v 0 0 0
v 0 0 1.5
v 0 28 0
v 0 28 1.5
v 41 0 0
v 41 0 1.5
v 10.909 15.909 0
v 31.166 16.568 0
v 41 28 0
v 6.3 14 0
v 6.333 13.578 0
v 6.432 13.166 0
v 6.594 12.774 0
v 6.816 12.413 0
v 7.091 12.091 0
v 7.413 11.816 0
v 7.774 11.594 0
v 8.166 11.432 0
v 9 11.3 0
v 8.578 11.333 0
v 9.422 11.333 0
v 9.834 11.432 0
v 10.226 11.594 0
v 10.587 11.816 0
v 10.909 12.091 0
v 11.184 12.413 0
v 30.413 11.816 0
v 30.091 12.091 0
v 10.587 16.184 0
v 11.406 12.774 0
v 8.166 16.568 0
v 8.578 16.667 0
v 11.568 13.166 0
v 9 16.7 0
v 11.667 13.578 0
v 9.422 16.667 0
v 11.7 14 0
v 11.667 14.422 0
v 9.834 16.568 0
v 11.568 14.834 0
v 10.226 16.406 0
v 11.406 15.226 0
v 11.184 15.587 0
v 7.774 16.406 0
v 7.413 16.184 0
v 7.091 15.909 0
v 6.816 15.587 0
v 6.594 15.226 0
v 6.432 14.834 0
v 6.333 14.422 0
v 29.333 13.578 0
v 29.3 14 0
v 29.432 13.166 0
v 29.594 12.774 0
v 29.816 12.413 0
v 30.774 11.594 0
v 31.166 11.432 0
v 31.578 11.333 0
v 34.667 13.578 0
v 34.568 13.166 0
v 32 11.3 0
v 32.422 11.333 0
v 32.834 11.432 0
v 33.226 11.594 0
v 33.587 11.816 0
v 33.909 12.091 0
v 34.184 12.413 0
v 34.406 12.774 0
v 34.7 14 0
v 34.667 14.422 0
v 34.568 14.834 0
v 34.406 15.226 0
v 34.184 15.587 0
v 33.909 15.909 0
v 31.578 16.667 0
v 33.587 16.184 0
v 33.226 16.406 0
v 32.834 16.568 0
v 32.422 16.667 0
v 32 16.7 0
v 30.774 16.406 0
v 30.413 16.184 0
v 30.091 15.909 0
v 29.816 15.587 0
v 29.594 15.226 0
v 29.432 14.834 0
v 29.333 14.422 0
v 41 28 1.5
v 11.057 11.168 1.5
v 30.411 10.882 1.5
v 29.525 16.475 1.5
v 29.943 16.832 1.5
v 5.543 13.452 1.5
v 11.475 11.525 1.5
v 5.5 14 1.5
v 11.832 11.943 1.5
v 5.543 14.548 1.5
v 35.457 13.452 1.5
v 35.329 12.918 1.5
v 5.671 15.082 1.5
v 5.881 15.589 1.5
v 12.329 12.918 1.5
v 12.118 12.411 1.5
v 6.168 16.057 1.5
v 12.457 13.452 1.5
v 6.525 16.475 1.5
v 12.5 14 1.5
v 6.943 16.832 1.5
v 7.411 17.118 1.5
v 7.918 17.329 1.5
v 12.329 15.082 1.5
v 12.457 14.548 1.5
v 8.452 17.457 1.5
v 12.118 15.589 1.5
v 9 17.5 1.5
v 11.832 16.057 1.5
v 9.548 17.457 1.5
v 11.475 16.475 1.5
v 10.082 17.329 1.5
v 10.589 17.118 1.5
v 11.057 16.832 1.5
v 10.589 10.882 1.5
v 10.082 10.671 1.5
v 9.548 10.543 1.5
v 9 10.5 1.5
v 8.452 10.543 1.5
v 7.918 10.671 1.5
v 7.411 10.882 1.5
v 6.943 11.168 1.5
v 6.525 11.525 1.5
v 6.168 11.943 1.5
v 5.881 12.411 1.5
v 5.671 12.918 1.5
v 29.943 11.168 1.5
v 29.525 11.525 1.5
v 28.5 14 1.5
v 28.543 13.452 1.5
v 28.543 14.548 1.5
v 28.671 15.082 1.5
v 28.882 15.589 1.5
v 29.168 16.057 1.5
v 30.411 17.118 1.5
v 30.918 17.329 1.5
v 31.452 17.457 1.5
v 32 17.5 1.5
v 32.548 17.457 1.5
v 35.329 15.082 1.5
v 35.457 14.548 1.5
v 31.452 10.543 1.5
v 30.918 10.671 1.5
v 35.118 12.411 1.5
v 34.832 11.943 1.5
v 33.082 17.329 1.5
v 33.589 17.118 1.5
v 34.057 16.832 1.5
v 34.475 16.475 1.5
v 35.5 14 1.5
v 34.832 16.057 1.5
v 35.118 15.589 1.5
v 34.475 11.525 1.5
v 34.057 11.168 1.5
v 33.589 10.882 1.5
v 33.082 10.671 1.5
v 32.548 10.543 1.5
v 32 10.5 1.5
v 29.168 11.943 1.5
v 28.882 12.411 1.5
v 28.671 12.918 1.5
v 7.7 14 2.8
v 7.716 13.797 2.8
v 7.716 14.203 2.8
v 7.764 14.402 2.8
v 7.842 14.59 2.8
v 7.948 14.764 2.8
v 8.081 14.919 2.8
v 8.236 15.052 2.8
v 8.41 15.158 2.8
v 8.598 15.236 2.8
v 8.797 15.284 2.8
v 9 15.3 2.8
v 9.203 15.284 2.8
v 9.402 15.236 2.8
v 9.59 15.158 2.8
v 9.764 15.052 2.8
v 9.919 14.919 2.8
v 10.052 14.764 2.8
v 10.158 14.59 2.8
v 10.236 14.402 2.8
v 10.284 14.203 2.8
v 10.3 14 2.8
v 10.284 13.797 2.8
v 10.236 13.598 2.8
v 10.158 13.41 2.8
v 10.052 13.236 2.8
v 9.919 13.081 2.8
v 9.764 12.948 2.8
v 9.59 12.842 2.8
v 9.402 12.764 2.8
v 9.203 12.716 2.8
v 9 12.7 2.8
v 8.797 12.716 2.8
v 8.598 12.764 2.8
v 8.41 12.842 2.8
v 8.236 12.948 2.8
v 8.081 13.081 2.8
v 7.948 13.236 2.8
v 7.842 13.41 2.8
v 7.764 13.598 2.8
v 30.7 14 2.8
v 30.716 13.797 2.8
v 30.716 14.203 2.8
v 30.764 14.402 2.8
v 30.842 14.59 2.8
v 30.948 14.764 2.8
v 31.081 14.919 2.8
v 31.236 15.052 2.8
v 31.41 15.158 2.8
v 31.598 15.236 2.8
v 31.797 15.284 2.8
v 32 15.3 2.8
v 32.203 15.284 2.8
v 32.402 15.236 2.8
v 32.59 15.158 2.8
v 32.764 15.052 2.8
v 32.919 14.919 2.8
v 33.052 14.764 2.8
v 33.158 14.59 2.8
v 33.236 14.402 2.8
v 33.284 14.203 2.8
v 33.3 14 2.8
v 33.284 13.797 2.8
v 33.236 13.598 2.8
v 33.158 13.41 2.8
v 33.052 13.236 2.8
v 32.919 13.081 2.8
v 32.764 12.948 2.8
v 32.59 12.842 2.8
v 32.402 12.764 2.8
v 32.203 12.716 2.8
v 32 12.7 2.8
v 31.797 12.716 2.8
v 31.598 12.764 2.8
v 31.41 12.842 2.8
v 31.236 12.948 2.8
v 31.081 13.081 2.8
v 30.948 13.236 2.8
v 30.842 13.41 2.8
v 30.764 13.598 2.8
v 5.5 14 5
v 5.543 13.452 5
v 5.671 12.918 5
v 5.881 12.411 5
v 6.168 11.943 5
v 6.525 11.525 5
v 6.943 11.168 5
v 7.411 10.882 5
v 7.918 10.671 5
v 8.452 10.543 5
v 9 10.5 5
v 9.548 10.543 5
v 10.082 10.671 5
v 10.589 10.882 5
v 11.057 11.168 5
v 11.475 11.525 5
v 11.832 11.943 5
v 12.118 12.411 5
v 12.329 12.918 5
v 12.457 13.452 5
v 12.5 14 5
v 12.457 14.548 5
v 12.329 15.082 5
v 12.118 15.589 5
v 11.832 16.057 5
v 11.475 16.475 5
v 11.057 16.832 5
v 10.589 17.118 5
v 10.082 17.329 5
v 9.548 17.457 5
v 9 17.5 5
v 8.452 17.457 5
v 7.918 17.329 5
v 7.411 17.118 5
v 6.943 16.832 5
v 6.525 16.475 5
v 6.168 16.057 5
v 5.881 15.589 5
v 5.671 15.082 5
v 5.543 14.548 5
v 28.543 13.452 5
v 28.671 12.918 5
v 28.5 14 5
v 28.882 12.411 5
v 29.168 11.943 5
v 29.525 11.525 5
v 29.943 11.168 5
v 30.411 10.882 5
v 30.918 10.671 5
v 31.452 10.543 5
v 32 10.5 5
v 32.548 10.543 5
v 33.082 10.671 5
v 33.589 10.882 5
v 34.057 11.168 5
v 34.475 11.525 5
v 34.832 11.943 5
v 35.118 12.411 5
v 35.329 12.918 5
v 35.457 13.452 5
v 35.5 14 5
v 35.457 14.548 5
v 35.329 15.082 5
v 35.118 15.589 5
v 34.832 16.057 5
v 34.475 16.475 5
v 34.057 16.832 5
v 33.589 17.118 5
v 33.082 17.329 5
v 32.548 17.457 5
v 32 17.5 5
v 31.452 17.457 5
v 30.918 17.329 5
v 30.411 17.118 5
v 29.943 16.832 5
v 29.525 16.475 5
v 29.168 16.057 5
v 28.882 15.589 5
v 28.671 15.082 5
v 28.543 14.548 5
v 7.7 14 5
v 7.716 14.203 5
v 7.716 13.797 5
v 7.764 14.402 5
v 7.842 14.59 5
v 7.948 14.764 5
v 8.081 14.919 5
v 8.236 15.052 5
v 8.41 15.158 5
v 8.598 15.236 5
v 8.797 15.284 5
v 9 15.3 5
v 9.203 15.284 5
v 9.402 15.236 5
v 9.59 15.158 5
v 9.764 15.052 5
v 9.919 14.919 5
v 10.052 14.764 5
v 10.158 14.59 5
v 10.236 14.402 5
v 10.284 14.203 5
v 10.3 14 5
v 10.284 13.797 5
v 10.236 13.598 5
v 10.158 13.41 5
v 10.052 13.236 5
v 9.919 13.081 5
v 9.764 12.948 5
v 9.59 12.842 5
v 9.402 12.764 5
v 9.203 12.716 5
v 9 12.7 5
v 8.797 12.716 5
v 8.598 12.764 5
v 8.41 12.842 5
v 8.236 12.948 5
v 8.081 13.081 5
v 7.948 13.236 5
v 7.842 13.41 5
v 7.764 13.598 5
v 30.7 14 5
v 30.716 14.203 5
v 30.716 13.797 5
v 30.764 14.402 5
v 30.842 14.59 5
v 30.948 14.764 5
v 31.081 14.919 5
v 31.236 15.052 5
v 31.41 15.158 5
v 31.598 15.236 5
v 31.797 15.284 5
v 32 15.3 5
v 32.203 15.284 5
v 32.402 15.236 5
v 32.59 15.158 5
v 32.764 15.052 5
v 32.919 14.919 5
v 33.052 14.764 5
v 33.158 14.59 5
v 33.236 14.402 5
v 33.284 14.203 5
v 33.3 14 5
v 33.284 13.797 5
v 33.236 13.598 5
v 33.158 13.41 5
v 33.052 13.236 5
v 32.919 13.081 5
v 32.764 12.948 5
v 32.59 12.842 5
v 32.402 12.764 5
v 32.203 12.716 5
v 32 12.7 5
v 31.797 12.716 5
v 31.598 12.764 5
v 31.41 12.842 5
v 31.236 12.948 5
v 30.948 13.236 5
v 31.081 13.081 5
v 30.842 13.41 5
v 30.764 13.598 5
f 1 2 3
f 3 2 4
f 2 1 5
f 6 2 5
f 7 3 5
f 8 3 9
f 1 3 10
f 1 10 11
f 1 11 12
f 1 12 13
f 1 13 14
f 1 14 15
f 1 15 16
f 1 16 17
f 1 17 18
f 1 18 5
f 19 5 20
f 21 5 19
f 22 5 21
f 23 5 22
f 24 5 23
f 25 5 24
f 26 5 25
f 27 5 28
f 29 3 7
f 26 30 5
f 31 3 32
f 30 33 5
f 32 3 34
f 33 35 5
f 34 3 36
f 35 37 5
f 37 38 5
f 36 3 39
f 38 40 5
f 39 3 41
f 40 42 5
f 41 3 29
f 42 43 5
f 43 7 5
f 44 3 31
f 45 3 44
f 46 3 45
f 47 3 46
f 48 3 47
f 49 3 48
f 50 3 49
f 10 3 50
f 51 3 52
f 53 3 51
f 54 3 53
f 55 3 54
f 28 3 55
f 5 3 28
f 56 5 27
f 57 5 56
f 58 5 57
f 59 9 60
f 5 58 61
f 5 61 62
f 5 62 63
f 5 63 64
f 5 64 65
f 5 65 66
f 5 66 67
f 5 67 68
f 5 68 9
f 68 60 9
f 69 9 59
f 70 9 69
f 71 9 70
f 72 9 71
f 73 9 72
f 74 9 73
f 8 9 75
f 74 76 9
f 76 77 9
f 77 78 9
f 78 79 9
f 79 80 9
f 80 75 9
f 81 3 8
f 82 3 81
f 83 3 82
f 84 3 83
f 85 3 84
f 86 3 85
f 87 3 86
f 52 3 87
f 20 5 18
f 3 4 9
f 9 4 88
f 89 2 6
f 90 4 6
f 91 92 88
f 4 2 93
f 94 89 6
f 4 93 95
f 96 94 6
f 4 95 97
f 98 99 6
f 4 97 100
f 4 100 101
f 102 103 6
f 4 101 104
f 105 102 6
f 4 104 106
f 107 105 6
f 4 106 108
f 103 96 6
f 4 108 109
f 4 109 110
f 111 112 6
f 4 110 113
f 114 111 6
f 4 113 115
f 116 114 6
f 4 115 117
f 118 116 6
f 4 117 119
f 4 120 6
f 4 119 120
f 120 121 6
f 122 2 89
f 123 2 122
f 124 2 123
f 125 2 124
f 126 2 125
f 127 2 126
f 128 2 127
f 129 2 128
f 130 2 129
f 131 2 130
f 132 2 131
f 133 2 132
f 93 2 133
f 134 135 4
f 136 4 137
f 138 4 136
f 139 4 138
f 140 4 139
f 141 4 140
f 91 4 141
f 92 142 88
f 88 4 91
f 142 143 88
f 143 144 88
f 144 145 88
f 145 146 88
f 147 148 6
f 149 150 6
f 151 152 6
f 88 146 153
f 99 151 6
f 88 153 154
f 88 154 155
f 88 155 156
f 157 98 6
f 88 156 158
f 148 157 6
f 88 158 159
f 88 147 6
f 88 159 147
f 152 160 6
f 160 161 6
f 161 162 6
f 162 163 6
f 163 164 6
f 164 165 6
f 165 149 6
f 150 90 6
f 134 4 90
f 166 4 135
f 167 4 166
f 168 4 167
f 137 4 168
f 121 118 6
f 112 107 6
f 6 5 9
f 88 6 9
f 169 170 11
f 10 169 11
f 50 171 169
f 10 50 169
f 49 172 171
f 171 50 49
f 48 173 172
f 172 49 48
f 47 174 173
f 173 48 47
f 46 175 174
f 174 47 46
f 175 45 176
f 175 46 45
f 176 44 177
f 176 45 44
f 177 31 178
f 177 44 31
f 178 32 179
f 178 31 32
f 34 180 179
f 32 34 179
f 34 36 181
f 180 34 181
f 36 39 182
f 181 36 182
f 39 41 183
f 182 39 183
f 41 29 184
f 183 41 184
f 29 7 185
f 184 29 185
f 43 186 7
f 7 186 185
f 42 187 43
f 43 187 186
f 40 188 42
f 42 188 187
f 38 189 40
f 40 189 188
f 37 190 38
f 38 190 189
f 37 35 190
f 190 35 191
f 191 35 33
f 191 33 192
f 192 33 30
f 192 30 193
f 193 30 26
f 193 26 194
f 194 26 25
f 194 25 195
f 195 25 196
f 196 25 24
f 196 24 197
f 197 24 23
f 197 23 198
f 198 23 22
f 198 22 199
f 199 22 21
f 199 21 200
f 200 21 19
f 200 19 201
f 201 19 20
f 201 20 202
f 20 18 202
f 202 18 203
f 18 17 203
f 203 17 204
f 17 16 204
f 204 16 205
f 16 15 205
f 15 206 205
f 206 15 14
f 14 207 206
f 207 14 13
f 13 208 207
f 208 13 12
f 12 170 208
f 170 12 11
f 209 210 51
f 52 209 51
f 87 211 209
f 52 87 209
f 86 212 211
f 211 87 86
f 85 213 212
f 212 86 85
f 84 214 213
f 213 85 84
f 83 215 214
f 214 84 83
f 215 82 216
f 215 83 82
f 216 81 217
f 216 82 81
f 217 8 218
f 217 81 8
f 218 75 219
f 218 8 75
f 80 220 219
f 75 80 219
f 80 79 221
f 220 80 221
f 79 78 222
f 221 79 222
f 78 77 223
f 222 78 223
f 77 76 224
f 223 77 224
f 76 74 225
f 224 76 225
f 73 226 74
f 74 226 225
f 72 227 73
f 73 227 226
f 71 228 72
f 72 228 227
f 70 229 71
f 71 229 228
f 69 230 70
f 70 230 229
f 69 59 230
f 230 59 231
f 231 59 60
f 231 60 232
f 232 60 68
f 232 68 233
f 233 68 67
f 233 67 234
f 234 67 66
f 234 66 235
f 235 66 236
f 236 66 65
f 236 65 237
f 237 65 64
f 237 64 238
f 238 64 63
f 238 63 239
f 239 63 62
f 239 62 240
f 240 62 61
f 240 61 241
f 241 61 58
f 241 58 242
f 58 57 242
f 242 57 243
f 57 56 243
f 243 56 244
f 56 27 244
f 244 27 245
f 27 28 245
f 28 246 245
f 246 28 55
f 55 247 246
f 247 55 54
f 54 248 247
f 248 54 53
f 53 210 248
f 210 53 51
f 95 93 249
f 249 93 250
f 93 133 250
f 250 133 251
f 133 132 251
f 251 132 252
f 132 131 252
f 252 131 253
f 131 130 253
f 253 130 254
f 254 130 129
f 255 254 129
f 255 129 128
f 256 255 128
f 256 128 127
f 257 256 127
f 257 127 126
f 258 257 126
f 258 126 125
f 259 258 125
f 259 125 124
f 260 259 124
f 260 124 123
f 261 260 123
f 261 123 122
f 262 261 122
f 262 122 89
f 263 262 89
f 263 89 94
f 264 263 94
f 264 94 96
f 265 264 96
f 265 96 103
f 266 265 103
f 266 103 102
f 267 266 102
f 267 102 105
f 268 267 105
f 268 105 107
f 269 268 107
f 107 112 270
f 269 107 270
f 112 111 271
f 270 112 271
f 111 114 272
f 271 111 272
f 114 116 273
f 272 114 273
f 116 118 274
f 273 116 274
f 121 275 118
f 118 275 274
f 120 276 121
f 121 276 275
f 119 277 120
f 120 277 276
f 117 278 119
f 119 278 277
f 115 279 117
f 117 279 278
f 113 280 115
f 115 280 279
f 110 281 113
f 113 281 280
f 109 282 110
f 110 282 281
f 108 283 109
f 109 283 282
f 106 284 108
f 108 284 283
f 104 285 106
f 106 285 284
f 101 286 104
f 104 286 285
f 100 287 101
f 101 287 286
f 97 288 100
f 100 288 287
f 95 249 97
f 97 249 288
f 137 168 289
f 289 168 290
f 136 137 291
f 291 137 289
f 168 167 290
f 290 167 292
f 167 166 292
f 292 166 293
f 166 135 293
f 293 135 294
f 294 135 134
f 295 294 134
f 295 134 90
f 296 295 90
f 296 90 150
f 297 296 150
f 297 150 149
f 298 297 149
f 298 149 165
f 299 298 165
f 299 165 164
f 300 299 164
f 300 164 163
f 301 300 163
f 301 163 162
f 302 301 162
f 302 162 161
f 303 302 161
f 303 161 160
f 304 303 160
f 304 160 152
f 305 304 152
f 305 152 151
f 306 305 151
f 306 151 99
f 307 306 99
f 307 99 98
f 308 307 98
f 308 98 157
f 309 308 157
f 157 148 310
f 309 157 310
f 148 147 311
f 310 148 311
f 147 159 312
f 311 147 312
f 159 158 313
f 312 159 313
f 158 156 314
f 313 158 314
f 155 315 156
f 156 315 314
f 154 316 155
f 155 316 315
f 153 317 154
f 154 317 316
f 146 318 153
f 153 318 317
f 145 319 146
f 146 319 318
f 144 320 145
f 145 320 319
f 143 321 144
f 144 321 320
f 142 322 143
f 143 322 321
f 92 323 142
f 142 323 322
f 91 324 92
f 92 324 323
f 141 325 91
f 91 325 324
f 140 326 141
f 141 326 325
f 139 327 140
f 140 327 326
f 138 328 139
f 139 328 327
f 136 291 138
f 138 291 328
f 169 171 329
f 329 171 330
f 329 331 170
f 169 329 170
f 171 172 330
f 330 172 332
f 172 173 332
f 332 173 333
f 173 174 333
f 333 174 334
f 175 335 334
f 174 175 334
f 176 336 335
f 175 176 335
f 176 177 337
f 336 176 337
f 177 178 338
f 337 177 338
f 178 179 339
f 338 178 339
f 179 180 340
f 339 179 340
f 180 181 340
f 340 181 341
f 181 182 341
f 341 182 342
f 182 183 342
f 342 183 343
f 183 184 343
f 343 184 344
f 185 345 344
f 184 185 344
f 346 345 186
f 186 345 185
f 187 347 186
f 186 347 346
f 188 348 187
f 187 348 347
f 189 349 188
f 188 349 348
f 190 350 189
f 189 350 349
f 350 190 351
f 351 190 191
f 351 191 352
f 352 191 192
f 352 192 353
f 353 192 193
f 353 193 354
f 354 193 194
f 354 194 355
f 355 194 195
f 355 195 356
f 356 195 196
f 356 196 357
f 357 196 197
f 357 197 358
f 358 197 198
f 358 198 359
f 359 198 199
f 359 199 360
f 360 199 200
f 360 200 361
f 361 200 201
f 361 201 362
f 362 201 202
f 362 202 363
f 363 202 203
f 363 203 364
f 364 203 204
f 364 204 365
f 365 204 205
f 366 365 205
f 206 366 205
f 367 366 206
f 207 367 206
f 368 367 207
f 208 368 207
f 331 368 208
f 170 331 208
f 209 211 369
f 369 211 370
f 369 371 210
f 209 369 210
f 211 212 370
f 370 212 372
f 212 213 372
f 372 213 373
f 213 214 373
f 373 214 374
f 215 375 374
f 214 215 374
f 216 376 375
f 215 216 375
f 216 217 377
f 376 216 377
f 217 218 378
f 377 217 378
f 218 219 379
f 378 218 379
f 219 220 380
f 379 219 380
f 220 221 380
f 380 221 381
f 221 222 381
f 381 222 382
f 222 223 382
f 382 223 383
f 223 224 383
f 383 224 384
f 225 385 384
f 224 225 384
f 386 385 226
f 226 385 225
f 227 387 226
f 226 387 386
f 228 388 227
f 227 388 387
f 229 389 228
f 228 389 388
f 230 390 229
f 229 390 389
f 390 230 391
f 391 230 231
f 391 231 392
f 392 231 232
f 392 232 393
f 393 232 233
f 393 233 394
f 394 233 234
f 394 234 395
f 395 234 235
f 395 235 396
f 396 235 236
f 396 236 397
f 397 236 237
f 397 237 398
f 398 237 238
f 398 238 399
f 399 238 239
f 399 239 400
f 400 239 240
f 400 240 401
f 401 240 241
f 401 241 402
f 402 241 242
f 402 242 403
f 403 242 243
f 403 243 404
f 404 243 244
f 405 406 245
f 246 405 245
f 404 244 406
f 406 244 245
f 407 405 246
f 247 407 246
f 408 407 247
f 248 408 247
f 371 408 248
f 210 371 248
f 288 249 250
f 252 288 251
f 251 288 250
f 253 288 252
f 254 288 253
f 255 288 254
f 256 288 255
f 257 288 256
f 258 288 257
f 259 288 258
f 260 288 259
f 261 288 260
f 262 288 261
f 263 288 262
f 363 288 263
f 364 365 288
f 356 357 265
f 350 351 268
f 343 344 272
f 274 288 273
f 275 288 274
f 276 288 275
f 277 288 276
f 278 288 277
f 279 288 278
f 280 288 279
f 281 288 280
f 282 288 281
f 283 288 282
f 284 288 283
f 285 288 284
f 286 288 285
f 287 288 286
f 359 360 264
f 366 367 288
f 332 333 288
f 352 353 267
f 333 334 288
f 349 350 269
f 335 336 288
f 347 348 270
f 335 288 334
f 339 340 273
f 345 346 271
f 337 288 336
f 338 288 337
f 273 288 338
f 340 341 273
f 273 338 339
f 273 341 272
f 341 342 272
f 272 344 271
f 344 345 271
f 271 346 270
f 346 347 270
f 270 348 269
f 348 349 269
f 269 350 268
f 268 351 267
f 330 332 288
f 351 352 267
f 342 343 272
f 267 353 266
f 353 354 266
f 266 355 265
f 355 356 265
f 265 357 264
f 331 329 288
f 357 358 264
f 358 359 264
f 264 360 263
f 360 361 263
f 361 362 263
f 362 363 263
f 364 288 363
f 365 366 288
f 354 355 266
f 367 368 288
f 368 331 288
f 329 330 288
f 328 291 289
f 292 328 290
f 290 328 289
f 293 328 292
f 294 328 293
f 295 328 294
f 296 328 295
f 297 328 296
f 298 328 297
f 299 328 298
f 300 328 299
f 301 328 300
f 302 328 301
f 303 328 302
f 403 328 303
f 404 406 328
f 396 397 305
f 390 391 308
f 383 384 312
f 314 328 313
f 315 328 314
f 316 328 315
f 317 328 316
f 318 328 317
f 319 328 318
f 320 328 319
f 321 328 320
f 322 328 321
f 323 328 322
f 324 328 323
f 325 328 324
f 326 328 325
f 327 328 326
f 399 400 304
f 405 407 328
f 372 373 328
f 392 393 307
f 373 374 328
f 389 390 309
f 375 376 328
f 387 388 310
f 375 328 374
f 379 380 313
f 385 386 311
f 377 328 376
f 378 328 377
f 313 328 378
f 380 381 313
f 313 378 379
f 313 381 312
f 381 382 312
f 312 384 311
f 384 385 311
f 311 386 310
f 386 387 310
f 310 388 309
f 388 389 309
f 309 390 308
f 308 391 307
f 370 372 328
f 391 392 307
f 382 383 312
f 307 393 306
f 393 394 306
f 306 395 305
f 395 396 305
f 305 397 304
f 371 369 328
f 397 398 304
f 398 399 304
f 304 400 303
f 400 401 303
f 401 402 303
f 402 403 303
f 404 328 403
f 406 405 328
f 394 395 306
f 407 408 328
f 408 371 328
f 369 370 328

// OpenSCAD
// Insulator for sensor board

$fn=40;

difference() {
	union() {
		cube([41,28,1.5]);
		translate([9,14,1]) cylinder(h=4,r=3.5);
		translate([9+23,14,1]) cylinder(h=4,r=3.5);
	}
	translate([9,14,-1]) cylinder(h=7,r=1.3);
	translate([9+23,14,-1]) cylinder(h=7,r=1.3);
	translate([9,14,-1]) cylinder(r1=3.2,r2=0,h=6.4);
	translate([9+23,14,-1]) cylinder(r1=3.2,r2=0,h=6.4);
}
